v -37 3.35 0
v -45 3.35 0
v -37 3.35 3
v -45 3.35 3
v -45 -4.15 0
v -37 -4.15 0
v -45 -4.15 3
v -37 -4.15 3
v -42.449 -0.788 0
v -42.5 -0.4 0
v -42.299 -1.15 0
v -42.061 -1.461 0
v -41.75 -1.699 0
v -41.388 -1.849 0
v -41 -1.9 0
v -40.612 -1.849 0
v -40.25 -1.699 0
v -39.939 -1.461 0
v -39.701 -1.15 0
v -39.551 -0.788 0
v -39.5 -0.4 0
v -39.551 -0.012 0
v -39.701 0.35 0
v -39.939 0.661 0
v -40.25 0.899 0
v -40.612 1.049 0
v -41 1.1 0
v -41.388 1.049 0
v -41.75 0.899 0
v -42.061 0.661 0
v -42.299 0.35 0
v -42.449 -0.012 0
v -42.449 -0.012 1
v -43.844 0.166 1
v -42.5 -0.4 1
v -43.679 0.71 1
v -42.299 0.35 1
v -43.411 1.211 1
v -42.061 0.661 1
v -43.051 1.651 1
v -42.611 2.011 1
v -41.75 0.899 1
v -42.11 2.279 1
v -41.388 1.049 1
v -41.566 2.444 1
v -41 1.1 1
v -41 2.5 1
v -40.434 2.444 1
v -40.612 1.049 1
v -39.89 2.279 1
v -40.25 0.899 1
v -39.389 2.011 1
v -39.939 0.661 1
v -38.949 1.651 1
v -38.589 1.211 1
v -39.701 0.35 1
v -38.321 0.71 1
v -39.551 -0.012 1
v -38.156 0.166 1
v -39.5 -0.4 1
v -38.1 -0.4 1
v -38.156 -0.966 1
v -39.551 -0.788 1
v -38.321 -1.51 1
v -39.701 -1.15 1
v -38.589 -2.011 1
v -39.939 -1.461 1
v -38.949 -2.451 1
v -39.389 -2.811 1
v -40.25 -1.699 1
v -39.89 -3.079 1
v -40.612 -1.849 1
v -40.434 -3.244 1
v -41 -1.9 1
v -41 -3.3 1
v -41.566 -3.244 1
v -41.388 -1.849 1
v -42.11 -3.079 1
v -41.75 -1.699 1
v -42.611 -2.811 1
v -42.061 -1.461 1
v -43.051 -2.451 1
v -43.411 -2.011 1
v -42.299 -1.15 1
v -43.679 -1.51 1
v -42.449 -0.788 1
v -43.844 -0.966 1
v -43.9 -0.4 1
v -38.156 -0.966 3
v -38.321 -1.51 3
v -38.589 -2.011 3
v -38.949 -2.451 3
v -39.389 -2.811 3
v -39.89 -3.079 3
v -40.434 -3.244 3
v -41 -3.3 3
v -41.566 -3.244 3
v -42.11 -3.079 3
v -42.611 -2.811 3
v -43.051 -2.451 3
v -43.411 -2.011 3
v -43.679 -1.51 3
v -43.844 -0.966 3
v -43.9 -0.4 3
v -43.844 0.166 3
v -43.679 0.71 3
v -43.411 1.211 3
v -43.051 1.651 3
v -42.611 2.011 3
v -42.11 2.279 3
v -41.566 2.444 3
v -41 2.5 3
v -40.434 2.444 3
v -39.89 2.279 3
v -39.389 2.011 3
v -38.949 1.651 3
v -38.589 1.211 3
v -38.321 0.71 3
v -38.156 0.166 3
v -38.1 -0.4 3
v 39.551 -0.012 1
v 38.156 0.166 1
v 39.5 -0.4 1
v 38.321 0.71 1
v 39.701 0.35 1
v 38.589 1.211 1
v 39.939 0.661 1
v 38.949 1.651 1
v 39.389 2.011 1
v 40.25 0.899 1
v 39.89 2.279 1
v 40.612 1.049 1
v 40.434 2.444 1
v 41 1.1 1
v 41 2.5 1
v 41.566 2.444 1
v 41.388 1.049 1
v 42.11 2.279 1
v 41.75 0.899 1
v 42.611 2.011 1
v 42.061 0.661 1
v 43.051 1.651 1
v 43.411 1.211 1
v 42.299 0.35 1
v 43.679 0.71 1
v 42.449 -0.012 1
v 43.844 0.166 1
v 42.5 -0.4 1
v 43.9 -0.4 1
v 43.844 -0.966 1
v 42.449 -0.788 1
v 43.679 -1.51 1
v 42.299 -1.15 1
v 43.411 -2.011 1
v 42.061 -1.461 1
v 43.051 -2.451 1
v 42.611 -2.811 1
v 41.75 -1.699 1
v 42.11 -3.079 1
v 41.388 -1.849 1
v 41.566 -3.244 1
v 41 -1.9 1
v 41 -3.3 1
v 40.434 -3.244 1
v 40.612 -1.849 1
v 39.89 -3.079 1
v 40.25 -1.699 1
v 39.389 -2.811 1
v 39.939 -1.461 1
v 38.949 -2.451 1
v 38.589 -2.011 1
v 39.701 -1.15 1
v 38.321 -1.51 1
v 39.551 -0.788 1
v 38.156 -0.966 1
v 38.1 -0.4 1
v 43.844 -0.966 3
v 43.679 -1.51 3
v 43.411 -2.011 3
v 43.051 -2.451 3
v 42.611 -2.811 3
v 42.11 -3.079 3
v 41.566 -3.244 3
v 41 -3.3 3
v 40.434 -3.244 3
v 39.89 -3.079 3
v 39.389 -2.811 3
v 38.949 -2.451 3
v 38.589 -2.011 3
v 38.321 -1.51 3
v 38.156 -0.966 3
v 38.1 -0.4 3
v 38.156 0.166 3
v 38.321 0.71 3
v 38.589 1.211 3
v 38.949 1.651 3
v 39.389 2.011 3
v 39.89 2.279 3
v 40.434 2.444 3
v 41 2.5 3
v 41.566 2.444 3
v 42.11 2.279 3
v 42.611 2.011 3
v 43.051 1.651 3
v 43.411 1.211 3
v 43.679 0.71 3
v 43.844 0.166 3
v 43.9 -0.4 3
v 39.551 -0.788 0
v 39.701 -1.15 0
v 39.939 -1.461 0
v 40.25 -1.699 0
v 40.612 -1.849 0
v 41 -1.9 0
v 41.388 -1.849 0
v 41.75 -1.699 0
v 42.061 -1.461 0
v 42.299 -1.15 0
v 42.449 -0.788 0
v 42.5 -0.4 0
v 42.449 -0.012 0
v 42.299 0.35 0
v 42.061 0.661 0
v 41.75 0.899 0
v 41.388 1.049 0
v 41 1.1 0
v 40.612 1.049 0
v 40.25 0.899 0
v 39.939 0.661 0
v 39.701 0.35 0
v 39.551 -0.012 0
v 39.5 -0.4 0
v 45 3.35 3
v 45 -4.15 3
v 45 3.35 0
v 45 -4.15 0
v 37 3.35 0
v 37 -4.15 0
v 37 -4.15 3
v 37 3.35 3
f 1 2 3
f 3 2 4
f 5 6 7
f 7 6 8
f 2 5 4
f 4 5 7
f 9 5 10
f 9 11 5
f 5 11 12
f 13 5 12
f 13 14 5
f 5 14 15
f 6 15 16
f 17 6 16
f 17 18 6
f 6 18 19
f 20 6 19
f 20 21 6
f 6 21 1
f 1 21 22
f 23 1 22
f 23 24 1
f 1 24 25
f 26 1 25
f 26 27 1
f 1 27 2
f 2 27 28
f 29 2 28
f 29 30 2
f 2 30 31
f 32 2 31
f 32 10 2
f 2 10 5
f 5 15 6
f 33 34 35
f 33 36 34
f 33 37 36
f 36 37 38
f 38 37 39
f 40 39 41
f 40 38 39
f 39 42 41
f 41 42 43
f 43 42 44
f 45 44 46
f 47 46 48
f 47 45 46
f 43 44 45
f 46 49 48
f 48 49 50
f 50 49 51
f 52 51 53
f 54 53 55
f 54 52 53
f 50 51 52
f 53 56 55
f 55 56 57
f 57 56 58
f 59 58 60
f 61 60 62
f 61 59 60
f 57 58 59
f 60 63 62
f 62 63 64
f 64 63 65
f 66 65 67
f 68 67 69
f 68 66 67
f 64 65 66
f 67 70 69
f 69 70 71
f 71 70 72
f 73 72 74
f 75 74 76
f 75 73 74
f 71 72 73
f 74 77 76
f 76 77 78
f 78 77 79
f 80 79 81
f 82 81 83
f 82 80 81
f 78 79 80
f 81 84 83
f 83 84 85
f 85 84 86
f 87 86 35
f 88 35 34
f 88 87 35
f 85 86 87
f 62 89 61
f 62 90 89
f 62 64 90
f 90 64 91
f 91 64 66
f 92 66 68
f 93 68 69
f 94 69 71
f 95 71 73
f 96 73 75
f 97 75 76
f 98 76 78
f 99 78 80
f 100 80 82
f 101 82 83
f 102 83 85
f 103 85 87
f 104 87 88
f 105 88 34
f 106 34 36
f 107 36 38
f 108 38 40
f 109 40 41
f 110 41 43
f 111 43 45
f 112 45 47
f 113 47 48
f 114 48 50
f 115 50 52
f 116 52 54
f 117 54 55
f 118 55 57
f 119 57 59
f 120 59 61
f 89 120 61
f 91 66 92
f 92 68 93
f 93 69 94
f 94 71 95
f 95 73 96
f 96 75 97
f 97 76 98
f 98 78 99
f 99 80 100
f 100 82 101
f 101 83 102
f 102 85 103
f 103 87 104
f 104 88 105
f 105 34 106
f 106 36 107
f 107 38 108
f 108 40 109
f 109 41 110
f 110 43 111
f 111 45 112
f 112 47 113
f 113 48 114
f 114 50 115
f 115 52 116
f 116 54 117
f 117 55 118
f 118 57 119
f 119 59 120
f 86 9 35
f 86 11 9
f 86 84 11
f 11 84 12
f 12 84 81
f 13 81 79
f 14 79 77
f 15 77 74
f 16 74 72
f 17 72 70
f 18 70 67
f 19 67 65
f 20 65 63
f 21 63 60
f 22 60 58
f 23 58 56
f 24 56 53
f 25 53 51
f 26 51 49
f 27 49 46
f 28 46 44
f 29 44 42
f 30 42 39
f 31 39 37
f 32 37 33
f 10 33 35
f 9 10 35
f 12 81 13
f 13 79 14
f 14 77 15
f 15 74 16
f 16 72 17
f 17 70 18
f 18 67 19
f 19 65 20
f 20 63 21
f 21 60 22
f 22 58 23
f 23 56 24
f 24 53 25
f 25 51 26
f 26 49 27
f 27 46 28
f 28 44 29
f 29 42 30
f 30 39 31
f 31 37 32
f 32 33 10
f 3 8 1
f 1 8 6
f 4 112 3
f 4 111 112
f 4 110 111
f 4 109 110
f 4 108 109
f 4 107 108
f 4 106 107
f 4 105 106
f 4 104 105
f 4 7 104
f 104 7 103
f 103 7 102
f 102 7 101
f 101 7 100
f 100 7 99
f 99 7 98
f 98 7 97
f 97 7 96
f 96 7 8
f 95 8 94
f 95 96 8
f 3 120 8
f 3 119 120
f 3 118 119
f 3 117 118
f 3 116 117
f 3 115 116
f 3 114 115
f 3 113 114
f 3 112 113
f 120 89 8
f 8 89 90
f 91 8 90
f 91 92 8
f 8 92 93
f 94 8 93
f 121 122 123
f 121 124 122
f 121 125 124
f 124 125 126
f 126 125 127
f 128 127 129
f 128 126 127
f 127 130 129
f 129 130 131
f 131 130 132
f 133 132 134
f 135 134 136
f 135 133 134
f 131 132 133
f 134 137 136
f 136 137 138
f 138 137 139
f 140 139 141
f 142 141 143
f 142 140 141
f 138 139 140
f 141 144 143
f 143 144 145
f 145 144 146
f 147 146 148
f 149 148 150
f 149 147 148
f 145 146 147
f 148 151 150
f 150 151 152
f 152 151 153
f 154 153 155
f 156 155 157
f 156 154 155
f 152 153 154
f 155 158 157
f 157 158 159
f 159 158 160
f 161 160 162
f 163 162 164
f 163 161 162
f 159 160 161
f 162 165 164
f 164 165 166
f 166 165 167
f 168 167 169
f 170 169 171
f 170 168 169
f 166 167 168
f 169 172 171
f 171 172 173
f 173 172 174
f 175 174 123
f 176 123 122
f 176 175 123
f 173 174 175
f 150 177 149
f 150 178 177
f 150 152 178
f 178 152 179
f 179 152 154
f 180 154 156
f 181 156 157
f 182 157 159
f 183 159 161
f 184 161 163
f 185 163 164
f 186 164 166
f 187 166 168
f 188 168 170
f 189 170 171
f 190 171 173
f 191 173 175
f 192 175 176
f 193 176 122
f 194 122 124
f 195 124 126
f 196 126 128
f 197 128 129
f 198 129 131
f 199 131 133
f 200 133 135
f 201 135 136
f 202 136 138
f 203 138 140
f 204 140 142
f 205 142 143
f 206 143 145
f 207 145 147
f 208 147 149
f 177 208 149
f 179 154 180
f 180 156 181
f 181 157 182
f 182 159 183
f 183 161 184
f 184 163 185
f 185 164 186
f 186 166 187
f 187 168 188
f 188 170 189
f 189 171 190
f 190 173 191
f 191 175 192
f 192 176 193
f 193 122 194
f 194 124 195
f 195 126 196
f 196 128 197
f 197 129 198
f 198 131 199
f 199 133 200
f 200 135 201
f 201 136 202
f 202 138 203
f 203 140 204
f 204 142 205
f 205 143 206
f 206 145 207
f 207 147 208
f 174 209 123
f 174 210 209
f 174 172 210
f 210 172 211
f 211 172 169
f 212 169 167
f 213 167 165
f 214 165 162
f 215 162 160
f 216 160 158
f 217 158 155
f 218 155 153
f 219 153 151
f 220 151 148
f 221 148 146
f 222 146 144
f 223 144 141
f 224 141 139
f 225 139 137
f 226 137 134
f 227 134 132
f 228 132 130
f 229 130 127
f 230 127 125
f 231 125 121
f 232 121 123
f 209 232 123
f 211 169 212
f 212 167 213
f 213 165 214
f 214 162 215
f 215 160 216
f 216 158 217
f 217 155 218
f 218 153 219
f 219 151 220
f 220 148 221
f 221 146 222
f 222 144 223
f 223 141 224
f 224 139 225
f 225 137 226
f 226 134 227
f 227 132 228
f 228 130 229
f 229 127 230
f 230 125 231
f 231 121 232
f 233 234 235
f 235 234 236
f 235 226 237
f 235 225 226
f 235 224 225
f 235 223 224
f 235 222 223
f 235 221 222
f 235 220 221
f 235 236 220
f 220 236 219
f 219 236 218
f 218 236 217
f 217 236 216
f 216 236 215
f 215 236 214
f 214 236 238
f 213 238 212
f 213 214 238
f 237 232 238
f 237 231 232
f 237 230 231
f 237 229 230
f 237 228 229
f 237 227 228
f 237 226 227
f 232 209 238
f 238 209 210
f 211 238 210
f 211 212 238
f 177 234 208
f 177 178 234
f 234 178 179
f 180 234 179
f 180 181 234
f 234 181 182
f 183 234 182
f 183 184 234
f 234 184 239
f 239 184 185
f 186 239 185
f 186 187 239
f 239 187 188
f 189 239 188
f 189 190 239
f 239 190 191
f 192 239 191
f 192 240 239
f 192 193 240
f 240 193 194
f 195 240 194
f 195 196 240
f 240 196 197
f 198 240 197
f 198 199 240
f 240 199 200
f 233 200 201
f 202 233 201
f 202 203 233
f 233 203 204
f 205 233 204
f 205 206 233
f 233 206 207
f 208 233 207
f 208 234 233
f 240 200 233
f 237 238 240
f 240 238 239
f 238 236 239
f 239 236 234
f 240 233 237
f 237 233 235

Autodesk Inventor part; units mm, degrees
ref_plane "YZ Plane" through (0, 0, 0) normal (1, 0, 0) x (0, 1, 0)
ref_plane "XZ Plane" through (0, 0, 0) normal (0, 1, 0) x (-1, 0, 0)
ref_plane "XY Plane" through (0, 0, 0) normal (0, 0, 1) x (1, 0, 0)
sketch "スケッチ1" plane through (0, 0, 0) normal (0, 0, 1) x (1, 0, 0)
  line L0 (-45, 3.5) -> (45, 3.5)
  line L1 (45, 3.5) -> (45, -3.5)
  line L2 (45, -3.5) -> (-45, -3.5)
  line L3 (-45, -3.5) -> (-45, 3.5)
  line L4 (-45, 3.5) -> (45, -3.5) construction
  line L5 (45, 3.5) -> (-45, -3.5) construction
  point P0 (0, 0)
  dimension "d0" = 90
  dimension "d1" = 7
extrude "押し出し1" add sketch "スケッチ1" along normal blind 3
sketch "スケッチ2" plane through (0, 0, 3) normal (0, 0, 1) x (1, 0, 0)
  circle A0 centre (-41, -0.4) radius 2.9
  circle A1 centre (41, -0.4) radius 2.9
  line L0 (45, 3.5) -> (-45, 3.5) projected
  line L1 (45, -3.5) -> (45, 3.5) projected
  point P0 (0, 0)
  dimension "d4" = 5.8
  dimension "d5" = 5.8
  dimension "d7" = 3.9
  dimension "d8" = 3.9
  dimension "d9" = 82
  dimension "d10" = 4
extrude "押し出し2" cut sketch "スケッチ2" against normal blind 2
sketch "スケッチ3" plane through (0, 0, 0) normal (0, 0, -1) x (-1, 0, 0)
  circle A0 centre (41, -0.4) radius 1.5
  circle A1 centre (-41, -0.4) radius 1.5
  line L0 (45, -3.5) -> (45, 3.5) projected
  line L1 (-45, 3.5) -> (-45, -3.5) projected
  line L2 (45, 3.5) -> (-45, 3.5) projected
  point P0 (0, 0)
  dimension "d13" = 3
  dimension "d14" = 3
  dimension "d15" = 4
  dimension "d16" = 4
  dimension "d17" = 3.9
  dimension "d18" = 3.9
extrude "押し出し3" cut sketch "スケッチ3" against normal blind 2
sketch "スケッチ4" plane through (-45, -3.5, 0) normal (0, -1, 0) x (1, 0, 0)
  line L0 (0, 0) -> (90, 0)
  line L1 (90, 0) -> (90, 3)
  line L2 (90, 3) -> (0, 3)
  line L3 (0, 3) -> (0, 0)
  point P0 (45, 0)
extrude "押し出し4" add sketch "スケッチ4" along normal blind 5
fillet "フィレット1" radius 4 1 edges at (0, -8.5, 3)
sketch "スケッチ6" plane through (0, 0, 0) normal (0, 0, -1) x (-1, 0, 0)
  line L0 (37, -0.5) -> (-37, -0.5)
  line L1 (-37, -0.5) -> (-37, 3.5)
  line L2 (-37, 3.5) -> (37, 3.5)
  line L3 (37, 3.5) -> (37, -0.5)
  line L4 (45, -8.5) -> (45, 3.5) projected
  line L5 (45, 3.5) -> (-45, 3.5) projected
  point P0 (0, 0)
  dimension "d24" = 74
  dimension "d25" = 8
  dimension "d26" = 0
  dimension "d27" = 4
extrude "押し出し5" cut sketch "スケッチ6" against normal blind 10
sketch "スケッチ7" plane through (0, 0, 3) normal (0, 0, 1) x (1, 0, 0)
  line L0 (-37, -10.5) -> (37, -10.5)
  line L1 (37, -10.5) -> (37, -0.5)
  line L2 (37, -0.5) -> (-37, -0.5)
  line L3 (-37, -0.5) -> (-37, -10.5)
  line L4 (-37, -0.5) -> (-37, 3.5) projected
  line L5 (37, -0.5) -> (-37, -0.5) projected
  point P0 (0, 0)
  dimension "d30" = 74
  dimension "d31" = 10
  dimension "d32" = 0
  dimension "d33" = 0
extrude "押し出し6" cut sketch "スケッチ7" against normal blind 10
sketch "スケッチ8" plane through (0, 0, 3) normal (0, 0, 1) x (1, 0, 0)
  line L0 (-45, -4.15) -> (45, -4.15)
  line L1 (45, -4.15) -> (45, 3.35)
  line L2 (45, 3.35) -> (-45, 3.35)
  line L3 (-45, 3.35) -> (-45, -4.15)
  circle A0 centre (41, -0.4) radius 1.5 projected
  line L4 (45, 3.5) -> (45, -4.627) projected
  line L5 (-45, -15.5359) -> (45, -15.5359)
  line L6 (45, -15.5359) -> (45, 4.4641)
  line L7 (45, 4.4641) -> (-45, 4.4641)
  line L8 (-45, 4.4641) -> (-45, -15.5359)
  point P0 (0, 0)
  dimension "d36" = 90
  dimension "d37" = 7.5
  dimension "d40" = 3.75
  dimension "d41" = 0
  dimension "d42" = 90
  dimension "d43" = 20
  dimension "d44" = 0
extrude "押し出し7" cut sketch "スケッチ8" against normal blind 10 contours L0 L4 L6 L5 L8 | L8 L7 L6 L4 L2
properties part number "LineTraceCoverBack"
